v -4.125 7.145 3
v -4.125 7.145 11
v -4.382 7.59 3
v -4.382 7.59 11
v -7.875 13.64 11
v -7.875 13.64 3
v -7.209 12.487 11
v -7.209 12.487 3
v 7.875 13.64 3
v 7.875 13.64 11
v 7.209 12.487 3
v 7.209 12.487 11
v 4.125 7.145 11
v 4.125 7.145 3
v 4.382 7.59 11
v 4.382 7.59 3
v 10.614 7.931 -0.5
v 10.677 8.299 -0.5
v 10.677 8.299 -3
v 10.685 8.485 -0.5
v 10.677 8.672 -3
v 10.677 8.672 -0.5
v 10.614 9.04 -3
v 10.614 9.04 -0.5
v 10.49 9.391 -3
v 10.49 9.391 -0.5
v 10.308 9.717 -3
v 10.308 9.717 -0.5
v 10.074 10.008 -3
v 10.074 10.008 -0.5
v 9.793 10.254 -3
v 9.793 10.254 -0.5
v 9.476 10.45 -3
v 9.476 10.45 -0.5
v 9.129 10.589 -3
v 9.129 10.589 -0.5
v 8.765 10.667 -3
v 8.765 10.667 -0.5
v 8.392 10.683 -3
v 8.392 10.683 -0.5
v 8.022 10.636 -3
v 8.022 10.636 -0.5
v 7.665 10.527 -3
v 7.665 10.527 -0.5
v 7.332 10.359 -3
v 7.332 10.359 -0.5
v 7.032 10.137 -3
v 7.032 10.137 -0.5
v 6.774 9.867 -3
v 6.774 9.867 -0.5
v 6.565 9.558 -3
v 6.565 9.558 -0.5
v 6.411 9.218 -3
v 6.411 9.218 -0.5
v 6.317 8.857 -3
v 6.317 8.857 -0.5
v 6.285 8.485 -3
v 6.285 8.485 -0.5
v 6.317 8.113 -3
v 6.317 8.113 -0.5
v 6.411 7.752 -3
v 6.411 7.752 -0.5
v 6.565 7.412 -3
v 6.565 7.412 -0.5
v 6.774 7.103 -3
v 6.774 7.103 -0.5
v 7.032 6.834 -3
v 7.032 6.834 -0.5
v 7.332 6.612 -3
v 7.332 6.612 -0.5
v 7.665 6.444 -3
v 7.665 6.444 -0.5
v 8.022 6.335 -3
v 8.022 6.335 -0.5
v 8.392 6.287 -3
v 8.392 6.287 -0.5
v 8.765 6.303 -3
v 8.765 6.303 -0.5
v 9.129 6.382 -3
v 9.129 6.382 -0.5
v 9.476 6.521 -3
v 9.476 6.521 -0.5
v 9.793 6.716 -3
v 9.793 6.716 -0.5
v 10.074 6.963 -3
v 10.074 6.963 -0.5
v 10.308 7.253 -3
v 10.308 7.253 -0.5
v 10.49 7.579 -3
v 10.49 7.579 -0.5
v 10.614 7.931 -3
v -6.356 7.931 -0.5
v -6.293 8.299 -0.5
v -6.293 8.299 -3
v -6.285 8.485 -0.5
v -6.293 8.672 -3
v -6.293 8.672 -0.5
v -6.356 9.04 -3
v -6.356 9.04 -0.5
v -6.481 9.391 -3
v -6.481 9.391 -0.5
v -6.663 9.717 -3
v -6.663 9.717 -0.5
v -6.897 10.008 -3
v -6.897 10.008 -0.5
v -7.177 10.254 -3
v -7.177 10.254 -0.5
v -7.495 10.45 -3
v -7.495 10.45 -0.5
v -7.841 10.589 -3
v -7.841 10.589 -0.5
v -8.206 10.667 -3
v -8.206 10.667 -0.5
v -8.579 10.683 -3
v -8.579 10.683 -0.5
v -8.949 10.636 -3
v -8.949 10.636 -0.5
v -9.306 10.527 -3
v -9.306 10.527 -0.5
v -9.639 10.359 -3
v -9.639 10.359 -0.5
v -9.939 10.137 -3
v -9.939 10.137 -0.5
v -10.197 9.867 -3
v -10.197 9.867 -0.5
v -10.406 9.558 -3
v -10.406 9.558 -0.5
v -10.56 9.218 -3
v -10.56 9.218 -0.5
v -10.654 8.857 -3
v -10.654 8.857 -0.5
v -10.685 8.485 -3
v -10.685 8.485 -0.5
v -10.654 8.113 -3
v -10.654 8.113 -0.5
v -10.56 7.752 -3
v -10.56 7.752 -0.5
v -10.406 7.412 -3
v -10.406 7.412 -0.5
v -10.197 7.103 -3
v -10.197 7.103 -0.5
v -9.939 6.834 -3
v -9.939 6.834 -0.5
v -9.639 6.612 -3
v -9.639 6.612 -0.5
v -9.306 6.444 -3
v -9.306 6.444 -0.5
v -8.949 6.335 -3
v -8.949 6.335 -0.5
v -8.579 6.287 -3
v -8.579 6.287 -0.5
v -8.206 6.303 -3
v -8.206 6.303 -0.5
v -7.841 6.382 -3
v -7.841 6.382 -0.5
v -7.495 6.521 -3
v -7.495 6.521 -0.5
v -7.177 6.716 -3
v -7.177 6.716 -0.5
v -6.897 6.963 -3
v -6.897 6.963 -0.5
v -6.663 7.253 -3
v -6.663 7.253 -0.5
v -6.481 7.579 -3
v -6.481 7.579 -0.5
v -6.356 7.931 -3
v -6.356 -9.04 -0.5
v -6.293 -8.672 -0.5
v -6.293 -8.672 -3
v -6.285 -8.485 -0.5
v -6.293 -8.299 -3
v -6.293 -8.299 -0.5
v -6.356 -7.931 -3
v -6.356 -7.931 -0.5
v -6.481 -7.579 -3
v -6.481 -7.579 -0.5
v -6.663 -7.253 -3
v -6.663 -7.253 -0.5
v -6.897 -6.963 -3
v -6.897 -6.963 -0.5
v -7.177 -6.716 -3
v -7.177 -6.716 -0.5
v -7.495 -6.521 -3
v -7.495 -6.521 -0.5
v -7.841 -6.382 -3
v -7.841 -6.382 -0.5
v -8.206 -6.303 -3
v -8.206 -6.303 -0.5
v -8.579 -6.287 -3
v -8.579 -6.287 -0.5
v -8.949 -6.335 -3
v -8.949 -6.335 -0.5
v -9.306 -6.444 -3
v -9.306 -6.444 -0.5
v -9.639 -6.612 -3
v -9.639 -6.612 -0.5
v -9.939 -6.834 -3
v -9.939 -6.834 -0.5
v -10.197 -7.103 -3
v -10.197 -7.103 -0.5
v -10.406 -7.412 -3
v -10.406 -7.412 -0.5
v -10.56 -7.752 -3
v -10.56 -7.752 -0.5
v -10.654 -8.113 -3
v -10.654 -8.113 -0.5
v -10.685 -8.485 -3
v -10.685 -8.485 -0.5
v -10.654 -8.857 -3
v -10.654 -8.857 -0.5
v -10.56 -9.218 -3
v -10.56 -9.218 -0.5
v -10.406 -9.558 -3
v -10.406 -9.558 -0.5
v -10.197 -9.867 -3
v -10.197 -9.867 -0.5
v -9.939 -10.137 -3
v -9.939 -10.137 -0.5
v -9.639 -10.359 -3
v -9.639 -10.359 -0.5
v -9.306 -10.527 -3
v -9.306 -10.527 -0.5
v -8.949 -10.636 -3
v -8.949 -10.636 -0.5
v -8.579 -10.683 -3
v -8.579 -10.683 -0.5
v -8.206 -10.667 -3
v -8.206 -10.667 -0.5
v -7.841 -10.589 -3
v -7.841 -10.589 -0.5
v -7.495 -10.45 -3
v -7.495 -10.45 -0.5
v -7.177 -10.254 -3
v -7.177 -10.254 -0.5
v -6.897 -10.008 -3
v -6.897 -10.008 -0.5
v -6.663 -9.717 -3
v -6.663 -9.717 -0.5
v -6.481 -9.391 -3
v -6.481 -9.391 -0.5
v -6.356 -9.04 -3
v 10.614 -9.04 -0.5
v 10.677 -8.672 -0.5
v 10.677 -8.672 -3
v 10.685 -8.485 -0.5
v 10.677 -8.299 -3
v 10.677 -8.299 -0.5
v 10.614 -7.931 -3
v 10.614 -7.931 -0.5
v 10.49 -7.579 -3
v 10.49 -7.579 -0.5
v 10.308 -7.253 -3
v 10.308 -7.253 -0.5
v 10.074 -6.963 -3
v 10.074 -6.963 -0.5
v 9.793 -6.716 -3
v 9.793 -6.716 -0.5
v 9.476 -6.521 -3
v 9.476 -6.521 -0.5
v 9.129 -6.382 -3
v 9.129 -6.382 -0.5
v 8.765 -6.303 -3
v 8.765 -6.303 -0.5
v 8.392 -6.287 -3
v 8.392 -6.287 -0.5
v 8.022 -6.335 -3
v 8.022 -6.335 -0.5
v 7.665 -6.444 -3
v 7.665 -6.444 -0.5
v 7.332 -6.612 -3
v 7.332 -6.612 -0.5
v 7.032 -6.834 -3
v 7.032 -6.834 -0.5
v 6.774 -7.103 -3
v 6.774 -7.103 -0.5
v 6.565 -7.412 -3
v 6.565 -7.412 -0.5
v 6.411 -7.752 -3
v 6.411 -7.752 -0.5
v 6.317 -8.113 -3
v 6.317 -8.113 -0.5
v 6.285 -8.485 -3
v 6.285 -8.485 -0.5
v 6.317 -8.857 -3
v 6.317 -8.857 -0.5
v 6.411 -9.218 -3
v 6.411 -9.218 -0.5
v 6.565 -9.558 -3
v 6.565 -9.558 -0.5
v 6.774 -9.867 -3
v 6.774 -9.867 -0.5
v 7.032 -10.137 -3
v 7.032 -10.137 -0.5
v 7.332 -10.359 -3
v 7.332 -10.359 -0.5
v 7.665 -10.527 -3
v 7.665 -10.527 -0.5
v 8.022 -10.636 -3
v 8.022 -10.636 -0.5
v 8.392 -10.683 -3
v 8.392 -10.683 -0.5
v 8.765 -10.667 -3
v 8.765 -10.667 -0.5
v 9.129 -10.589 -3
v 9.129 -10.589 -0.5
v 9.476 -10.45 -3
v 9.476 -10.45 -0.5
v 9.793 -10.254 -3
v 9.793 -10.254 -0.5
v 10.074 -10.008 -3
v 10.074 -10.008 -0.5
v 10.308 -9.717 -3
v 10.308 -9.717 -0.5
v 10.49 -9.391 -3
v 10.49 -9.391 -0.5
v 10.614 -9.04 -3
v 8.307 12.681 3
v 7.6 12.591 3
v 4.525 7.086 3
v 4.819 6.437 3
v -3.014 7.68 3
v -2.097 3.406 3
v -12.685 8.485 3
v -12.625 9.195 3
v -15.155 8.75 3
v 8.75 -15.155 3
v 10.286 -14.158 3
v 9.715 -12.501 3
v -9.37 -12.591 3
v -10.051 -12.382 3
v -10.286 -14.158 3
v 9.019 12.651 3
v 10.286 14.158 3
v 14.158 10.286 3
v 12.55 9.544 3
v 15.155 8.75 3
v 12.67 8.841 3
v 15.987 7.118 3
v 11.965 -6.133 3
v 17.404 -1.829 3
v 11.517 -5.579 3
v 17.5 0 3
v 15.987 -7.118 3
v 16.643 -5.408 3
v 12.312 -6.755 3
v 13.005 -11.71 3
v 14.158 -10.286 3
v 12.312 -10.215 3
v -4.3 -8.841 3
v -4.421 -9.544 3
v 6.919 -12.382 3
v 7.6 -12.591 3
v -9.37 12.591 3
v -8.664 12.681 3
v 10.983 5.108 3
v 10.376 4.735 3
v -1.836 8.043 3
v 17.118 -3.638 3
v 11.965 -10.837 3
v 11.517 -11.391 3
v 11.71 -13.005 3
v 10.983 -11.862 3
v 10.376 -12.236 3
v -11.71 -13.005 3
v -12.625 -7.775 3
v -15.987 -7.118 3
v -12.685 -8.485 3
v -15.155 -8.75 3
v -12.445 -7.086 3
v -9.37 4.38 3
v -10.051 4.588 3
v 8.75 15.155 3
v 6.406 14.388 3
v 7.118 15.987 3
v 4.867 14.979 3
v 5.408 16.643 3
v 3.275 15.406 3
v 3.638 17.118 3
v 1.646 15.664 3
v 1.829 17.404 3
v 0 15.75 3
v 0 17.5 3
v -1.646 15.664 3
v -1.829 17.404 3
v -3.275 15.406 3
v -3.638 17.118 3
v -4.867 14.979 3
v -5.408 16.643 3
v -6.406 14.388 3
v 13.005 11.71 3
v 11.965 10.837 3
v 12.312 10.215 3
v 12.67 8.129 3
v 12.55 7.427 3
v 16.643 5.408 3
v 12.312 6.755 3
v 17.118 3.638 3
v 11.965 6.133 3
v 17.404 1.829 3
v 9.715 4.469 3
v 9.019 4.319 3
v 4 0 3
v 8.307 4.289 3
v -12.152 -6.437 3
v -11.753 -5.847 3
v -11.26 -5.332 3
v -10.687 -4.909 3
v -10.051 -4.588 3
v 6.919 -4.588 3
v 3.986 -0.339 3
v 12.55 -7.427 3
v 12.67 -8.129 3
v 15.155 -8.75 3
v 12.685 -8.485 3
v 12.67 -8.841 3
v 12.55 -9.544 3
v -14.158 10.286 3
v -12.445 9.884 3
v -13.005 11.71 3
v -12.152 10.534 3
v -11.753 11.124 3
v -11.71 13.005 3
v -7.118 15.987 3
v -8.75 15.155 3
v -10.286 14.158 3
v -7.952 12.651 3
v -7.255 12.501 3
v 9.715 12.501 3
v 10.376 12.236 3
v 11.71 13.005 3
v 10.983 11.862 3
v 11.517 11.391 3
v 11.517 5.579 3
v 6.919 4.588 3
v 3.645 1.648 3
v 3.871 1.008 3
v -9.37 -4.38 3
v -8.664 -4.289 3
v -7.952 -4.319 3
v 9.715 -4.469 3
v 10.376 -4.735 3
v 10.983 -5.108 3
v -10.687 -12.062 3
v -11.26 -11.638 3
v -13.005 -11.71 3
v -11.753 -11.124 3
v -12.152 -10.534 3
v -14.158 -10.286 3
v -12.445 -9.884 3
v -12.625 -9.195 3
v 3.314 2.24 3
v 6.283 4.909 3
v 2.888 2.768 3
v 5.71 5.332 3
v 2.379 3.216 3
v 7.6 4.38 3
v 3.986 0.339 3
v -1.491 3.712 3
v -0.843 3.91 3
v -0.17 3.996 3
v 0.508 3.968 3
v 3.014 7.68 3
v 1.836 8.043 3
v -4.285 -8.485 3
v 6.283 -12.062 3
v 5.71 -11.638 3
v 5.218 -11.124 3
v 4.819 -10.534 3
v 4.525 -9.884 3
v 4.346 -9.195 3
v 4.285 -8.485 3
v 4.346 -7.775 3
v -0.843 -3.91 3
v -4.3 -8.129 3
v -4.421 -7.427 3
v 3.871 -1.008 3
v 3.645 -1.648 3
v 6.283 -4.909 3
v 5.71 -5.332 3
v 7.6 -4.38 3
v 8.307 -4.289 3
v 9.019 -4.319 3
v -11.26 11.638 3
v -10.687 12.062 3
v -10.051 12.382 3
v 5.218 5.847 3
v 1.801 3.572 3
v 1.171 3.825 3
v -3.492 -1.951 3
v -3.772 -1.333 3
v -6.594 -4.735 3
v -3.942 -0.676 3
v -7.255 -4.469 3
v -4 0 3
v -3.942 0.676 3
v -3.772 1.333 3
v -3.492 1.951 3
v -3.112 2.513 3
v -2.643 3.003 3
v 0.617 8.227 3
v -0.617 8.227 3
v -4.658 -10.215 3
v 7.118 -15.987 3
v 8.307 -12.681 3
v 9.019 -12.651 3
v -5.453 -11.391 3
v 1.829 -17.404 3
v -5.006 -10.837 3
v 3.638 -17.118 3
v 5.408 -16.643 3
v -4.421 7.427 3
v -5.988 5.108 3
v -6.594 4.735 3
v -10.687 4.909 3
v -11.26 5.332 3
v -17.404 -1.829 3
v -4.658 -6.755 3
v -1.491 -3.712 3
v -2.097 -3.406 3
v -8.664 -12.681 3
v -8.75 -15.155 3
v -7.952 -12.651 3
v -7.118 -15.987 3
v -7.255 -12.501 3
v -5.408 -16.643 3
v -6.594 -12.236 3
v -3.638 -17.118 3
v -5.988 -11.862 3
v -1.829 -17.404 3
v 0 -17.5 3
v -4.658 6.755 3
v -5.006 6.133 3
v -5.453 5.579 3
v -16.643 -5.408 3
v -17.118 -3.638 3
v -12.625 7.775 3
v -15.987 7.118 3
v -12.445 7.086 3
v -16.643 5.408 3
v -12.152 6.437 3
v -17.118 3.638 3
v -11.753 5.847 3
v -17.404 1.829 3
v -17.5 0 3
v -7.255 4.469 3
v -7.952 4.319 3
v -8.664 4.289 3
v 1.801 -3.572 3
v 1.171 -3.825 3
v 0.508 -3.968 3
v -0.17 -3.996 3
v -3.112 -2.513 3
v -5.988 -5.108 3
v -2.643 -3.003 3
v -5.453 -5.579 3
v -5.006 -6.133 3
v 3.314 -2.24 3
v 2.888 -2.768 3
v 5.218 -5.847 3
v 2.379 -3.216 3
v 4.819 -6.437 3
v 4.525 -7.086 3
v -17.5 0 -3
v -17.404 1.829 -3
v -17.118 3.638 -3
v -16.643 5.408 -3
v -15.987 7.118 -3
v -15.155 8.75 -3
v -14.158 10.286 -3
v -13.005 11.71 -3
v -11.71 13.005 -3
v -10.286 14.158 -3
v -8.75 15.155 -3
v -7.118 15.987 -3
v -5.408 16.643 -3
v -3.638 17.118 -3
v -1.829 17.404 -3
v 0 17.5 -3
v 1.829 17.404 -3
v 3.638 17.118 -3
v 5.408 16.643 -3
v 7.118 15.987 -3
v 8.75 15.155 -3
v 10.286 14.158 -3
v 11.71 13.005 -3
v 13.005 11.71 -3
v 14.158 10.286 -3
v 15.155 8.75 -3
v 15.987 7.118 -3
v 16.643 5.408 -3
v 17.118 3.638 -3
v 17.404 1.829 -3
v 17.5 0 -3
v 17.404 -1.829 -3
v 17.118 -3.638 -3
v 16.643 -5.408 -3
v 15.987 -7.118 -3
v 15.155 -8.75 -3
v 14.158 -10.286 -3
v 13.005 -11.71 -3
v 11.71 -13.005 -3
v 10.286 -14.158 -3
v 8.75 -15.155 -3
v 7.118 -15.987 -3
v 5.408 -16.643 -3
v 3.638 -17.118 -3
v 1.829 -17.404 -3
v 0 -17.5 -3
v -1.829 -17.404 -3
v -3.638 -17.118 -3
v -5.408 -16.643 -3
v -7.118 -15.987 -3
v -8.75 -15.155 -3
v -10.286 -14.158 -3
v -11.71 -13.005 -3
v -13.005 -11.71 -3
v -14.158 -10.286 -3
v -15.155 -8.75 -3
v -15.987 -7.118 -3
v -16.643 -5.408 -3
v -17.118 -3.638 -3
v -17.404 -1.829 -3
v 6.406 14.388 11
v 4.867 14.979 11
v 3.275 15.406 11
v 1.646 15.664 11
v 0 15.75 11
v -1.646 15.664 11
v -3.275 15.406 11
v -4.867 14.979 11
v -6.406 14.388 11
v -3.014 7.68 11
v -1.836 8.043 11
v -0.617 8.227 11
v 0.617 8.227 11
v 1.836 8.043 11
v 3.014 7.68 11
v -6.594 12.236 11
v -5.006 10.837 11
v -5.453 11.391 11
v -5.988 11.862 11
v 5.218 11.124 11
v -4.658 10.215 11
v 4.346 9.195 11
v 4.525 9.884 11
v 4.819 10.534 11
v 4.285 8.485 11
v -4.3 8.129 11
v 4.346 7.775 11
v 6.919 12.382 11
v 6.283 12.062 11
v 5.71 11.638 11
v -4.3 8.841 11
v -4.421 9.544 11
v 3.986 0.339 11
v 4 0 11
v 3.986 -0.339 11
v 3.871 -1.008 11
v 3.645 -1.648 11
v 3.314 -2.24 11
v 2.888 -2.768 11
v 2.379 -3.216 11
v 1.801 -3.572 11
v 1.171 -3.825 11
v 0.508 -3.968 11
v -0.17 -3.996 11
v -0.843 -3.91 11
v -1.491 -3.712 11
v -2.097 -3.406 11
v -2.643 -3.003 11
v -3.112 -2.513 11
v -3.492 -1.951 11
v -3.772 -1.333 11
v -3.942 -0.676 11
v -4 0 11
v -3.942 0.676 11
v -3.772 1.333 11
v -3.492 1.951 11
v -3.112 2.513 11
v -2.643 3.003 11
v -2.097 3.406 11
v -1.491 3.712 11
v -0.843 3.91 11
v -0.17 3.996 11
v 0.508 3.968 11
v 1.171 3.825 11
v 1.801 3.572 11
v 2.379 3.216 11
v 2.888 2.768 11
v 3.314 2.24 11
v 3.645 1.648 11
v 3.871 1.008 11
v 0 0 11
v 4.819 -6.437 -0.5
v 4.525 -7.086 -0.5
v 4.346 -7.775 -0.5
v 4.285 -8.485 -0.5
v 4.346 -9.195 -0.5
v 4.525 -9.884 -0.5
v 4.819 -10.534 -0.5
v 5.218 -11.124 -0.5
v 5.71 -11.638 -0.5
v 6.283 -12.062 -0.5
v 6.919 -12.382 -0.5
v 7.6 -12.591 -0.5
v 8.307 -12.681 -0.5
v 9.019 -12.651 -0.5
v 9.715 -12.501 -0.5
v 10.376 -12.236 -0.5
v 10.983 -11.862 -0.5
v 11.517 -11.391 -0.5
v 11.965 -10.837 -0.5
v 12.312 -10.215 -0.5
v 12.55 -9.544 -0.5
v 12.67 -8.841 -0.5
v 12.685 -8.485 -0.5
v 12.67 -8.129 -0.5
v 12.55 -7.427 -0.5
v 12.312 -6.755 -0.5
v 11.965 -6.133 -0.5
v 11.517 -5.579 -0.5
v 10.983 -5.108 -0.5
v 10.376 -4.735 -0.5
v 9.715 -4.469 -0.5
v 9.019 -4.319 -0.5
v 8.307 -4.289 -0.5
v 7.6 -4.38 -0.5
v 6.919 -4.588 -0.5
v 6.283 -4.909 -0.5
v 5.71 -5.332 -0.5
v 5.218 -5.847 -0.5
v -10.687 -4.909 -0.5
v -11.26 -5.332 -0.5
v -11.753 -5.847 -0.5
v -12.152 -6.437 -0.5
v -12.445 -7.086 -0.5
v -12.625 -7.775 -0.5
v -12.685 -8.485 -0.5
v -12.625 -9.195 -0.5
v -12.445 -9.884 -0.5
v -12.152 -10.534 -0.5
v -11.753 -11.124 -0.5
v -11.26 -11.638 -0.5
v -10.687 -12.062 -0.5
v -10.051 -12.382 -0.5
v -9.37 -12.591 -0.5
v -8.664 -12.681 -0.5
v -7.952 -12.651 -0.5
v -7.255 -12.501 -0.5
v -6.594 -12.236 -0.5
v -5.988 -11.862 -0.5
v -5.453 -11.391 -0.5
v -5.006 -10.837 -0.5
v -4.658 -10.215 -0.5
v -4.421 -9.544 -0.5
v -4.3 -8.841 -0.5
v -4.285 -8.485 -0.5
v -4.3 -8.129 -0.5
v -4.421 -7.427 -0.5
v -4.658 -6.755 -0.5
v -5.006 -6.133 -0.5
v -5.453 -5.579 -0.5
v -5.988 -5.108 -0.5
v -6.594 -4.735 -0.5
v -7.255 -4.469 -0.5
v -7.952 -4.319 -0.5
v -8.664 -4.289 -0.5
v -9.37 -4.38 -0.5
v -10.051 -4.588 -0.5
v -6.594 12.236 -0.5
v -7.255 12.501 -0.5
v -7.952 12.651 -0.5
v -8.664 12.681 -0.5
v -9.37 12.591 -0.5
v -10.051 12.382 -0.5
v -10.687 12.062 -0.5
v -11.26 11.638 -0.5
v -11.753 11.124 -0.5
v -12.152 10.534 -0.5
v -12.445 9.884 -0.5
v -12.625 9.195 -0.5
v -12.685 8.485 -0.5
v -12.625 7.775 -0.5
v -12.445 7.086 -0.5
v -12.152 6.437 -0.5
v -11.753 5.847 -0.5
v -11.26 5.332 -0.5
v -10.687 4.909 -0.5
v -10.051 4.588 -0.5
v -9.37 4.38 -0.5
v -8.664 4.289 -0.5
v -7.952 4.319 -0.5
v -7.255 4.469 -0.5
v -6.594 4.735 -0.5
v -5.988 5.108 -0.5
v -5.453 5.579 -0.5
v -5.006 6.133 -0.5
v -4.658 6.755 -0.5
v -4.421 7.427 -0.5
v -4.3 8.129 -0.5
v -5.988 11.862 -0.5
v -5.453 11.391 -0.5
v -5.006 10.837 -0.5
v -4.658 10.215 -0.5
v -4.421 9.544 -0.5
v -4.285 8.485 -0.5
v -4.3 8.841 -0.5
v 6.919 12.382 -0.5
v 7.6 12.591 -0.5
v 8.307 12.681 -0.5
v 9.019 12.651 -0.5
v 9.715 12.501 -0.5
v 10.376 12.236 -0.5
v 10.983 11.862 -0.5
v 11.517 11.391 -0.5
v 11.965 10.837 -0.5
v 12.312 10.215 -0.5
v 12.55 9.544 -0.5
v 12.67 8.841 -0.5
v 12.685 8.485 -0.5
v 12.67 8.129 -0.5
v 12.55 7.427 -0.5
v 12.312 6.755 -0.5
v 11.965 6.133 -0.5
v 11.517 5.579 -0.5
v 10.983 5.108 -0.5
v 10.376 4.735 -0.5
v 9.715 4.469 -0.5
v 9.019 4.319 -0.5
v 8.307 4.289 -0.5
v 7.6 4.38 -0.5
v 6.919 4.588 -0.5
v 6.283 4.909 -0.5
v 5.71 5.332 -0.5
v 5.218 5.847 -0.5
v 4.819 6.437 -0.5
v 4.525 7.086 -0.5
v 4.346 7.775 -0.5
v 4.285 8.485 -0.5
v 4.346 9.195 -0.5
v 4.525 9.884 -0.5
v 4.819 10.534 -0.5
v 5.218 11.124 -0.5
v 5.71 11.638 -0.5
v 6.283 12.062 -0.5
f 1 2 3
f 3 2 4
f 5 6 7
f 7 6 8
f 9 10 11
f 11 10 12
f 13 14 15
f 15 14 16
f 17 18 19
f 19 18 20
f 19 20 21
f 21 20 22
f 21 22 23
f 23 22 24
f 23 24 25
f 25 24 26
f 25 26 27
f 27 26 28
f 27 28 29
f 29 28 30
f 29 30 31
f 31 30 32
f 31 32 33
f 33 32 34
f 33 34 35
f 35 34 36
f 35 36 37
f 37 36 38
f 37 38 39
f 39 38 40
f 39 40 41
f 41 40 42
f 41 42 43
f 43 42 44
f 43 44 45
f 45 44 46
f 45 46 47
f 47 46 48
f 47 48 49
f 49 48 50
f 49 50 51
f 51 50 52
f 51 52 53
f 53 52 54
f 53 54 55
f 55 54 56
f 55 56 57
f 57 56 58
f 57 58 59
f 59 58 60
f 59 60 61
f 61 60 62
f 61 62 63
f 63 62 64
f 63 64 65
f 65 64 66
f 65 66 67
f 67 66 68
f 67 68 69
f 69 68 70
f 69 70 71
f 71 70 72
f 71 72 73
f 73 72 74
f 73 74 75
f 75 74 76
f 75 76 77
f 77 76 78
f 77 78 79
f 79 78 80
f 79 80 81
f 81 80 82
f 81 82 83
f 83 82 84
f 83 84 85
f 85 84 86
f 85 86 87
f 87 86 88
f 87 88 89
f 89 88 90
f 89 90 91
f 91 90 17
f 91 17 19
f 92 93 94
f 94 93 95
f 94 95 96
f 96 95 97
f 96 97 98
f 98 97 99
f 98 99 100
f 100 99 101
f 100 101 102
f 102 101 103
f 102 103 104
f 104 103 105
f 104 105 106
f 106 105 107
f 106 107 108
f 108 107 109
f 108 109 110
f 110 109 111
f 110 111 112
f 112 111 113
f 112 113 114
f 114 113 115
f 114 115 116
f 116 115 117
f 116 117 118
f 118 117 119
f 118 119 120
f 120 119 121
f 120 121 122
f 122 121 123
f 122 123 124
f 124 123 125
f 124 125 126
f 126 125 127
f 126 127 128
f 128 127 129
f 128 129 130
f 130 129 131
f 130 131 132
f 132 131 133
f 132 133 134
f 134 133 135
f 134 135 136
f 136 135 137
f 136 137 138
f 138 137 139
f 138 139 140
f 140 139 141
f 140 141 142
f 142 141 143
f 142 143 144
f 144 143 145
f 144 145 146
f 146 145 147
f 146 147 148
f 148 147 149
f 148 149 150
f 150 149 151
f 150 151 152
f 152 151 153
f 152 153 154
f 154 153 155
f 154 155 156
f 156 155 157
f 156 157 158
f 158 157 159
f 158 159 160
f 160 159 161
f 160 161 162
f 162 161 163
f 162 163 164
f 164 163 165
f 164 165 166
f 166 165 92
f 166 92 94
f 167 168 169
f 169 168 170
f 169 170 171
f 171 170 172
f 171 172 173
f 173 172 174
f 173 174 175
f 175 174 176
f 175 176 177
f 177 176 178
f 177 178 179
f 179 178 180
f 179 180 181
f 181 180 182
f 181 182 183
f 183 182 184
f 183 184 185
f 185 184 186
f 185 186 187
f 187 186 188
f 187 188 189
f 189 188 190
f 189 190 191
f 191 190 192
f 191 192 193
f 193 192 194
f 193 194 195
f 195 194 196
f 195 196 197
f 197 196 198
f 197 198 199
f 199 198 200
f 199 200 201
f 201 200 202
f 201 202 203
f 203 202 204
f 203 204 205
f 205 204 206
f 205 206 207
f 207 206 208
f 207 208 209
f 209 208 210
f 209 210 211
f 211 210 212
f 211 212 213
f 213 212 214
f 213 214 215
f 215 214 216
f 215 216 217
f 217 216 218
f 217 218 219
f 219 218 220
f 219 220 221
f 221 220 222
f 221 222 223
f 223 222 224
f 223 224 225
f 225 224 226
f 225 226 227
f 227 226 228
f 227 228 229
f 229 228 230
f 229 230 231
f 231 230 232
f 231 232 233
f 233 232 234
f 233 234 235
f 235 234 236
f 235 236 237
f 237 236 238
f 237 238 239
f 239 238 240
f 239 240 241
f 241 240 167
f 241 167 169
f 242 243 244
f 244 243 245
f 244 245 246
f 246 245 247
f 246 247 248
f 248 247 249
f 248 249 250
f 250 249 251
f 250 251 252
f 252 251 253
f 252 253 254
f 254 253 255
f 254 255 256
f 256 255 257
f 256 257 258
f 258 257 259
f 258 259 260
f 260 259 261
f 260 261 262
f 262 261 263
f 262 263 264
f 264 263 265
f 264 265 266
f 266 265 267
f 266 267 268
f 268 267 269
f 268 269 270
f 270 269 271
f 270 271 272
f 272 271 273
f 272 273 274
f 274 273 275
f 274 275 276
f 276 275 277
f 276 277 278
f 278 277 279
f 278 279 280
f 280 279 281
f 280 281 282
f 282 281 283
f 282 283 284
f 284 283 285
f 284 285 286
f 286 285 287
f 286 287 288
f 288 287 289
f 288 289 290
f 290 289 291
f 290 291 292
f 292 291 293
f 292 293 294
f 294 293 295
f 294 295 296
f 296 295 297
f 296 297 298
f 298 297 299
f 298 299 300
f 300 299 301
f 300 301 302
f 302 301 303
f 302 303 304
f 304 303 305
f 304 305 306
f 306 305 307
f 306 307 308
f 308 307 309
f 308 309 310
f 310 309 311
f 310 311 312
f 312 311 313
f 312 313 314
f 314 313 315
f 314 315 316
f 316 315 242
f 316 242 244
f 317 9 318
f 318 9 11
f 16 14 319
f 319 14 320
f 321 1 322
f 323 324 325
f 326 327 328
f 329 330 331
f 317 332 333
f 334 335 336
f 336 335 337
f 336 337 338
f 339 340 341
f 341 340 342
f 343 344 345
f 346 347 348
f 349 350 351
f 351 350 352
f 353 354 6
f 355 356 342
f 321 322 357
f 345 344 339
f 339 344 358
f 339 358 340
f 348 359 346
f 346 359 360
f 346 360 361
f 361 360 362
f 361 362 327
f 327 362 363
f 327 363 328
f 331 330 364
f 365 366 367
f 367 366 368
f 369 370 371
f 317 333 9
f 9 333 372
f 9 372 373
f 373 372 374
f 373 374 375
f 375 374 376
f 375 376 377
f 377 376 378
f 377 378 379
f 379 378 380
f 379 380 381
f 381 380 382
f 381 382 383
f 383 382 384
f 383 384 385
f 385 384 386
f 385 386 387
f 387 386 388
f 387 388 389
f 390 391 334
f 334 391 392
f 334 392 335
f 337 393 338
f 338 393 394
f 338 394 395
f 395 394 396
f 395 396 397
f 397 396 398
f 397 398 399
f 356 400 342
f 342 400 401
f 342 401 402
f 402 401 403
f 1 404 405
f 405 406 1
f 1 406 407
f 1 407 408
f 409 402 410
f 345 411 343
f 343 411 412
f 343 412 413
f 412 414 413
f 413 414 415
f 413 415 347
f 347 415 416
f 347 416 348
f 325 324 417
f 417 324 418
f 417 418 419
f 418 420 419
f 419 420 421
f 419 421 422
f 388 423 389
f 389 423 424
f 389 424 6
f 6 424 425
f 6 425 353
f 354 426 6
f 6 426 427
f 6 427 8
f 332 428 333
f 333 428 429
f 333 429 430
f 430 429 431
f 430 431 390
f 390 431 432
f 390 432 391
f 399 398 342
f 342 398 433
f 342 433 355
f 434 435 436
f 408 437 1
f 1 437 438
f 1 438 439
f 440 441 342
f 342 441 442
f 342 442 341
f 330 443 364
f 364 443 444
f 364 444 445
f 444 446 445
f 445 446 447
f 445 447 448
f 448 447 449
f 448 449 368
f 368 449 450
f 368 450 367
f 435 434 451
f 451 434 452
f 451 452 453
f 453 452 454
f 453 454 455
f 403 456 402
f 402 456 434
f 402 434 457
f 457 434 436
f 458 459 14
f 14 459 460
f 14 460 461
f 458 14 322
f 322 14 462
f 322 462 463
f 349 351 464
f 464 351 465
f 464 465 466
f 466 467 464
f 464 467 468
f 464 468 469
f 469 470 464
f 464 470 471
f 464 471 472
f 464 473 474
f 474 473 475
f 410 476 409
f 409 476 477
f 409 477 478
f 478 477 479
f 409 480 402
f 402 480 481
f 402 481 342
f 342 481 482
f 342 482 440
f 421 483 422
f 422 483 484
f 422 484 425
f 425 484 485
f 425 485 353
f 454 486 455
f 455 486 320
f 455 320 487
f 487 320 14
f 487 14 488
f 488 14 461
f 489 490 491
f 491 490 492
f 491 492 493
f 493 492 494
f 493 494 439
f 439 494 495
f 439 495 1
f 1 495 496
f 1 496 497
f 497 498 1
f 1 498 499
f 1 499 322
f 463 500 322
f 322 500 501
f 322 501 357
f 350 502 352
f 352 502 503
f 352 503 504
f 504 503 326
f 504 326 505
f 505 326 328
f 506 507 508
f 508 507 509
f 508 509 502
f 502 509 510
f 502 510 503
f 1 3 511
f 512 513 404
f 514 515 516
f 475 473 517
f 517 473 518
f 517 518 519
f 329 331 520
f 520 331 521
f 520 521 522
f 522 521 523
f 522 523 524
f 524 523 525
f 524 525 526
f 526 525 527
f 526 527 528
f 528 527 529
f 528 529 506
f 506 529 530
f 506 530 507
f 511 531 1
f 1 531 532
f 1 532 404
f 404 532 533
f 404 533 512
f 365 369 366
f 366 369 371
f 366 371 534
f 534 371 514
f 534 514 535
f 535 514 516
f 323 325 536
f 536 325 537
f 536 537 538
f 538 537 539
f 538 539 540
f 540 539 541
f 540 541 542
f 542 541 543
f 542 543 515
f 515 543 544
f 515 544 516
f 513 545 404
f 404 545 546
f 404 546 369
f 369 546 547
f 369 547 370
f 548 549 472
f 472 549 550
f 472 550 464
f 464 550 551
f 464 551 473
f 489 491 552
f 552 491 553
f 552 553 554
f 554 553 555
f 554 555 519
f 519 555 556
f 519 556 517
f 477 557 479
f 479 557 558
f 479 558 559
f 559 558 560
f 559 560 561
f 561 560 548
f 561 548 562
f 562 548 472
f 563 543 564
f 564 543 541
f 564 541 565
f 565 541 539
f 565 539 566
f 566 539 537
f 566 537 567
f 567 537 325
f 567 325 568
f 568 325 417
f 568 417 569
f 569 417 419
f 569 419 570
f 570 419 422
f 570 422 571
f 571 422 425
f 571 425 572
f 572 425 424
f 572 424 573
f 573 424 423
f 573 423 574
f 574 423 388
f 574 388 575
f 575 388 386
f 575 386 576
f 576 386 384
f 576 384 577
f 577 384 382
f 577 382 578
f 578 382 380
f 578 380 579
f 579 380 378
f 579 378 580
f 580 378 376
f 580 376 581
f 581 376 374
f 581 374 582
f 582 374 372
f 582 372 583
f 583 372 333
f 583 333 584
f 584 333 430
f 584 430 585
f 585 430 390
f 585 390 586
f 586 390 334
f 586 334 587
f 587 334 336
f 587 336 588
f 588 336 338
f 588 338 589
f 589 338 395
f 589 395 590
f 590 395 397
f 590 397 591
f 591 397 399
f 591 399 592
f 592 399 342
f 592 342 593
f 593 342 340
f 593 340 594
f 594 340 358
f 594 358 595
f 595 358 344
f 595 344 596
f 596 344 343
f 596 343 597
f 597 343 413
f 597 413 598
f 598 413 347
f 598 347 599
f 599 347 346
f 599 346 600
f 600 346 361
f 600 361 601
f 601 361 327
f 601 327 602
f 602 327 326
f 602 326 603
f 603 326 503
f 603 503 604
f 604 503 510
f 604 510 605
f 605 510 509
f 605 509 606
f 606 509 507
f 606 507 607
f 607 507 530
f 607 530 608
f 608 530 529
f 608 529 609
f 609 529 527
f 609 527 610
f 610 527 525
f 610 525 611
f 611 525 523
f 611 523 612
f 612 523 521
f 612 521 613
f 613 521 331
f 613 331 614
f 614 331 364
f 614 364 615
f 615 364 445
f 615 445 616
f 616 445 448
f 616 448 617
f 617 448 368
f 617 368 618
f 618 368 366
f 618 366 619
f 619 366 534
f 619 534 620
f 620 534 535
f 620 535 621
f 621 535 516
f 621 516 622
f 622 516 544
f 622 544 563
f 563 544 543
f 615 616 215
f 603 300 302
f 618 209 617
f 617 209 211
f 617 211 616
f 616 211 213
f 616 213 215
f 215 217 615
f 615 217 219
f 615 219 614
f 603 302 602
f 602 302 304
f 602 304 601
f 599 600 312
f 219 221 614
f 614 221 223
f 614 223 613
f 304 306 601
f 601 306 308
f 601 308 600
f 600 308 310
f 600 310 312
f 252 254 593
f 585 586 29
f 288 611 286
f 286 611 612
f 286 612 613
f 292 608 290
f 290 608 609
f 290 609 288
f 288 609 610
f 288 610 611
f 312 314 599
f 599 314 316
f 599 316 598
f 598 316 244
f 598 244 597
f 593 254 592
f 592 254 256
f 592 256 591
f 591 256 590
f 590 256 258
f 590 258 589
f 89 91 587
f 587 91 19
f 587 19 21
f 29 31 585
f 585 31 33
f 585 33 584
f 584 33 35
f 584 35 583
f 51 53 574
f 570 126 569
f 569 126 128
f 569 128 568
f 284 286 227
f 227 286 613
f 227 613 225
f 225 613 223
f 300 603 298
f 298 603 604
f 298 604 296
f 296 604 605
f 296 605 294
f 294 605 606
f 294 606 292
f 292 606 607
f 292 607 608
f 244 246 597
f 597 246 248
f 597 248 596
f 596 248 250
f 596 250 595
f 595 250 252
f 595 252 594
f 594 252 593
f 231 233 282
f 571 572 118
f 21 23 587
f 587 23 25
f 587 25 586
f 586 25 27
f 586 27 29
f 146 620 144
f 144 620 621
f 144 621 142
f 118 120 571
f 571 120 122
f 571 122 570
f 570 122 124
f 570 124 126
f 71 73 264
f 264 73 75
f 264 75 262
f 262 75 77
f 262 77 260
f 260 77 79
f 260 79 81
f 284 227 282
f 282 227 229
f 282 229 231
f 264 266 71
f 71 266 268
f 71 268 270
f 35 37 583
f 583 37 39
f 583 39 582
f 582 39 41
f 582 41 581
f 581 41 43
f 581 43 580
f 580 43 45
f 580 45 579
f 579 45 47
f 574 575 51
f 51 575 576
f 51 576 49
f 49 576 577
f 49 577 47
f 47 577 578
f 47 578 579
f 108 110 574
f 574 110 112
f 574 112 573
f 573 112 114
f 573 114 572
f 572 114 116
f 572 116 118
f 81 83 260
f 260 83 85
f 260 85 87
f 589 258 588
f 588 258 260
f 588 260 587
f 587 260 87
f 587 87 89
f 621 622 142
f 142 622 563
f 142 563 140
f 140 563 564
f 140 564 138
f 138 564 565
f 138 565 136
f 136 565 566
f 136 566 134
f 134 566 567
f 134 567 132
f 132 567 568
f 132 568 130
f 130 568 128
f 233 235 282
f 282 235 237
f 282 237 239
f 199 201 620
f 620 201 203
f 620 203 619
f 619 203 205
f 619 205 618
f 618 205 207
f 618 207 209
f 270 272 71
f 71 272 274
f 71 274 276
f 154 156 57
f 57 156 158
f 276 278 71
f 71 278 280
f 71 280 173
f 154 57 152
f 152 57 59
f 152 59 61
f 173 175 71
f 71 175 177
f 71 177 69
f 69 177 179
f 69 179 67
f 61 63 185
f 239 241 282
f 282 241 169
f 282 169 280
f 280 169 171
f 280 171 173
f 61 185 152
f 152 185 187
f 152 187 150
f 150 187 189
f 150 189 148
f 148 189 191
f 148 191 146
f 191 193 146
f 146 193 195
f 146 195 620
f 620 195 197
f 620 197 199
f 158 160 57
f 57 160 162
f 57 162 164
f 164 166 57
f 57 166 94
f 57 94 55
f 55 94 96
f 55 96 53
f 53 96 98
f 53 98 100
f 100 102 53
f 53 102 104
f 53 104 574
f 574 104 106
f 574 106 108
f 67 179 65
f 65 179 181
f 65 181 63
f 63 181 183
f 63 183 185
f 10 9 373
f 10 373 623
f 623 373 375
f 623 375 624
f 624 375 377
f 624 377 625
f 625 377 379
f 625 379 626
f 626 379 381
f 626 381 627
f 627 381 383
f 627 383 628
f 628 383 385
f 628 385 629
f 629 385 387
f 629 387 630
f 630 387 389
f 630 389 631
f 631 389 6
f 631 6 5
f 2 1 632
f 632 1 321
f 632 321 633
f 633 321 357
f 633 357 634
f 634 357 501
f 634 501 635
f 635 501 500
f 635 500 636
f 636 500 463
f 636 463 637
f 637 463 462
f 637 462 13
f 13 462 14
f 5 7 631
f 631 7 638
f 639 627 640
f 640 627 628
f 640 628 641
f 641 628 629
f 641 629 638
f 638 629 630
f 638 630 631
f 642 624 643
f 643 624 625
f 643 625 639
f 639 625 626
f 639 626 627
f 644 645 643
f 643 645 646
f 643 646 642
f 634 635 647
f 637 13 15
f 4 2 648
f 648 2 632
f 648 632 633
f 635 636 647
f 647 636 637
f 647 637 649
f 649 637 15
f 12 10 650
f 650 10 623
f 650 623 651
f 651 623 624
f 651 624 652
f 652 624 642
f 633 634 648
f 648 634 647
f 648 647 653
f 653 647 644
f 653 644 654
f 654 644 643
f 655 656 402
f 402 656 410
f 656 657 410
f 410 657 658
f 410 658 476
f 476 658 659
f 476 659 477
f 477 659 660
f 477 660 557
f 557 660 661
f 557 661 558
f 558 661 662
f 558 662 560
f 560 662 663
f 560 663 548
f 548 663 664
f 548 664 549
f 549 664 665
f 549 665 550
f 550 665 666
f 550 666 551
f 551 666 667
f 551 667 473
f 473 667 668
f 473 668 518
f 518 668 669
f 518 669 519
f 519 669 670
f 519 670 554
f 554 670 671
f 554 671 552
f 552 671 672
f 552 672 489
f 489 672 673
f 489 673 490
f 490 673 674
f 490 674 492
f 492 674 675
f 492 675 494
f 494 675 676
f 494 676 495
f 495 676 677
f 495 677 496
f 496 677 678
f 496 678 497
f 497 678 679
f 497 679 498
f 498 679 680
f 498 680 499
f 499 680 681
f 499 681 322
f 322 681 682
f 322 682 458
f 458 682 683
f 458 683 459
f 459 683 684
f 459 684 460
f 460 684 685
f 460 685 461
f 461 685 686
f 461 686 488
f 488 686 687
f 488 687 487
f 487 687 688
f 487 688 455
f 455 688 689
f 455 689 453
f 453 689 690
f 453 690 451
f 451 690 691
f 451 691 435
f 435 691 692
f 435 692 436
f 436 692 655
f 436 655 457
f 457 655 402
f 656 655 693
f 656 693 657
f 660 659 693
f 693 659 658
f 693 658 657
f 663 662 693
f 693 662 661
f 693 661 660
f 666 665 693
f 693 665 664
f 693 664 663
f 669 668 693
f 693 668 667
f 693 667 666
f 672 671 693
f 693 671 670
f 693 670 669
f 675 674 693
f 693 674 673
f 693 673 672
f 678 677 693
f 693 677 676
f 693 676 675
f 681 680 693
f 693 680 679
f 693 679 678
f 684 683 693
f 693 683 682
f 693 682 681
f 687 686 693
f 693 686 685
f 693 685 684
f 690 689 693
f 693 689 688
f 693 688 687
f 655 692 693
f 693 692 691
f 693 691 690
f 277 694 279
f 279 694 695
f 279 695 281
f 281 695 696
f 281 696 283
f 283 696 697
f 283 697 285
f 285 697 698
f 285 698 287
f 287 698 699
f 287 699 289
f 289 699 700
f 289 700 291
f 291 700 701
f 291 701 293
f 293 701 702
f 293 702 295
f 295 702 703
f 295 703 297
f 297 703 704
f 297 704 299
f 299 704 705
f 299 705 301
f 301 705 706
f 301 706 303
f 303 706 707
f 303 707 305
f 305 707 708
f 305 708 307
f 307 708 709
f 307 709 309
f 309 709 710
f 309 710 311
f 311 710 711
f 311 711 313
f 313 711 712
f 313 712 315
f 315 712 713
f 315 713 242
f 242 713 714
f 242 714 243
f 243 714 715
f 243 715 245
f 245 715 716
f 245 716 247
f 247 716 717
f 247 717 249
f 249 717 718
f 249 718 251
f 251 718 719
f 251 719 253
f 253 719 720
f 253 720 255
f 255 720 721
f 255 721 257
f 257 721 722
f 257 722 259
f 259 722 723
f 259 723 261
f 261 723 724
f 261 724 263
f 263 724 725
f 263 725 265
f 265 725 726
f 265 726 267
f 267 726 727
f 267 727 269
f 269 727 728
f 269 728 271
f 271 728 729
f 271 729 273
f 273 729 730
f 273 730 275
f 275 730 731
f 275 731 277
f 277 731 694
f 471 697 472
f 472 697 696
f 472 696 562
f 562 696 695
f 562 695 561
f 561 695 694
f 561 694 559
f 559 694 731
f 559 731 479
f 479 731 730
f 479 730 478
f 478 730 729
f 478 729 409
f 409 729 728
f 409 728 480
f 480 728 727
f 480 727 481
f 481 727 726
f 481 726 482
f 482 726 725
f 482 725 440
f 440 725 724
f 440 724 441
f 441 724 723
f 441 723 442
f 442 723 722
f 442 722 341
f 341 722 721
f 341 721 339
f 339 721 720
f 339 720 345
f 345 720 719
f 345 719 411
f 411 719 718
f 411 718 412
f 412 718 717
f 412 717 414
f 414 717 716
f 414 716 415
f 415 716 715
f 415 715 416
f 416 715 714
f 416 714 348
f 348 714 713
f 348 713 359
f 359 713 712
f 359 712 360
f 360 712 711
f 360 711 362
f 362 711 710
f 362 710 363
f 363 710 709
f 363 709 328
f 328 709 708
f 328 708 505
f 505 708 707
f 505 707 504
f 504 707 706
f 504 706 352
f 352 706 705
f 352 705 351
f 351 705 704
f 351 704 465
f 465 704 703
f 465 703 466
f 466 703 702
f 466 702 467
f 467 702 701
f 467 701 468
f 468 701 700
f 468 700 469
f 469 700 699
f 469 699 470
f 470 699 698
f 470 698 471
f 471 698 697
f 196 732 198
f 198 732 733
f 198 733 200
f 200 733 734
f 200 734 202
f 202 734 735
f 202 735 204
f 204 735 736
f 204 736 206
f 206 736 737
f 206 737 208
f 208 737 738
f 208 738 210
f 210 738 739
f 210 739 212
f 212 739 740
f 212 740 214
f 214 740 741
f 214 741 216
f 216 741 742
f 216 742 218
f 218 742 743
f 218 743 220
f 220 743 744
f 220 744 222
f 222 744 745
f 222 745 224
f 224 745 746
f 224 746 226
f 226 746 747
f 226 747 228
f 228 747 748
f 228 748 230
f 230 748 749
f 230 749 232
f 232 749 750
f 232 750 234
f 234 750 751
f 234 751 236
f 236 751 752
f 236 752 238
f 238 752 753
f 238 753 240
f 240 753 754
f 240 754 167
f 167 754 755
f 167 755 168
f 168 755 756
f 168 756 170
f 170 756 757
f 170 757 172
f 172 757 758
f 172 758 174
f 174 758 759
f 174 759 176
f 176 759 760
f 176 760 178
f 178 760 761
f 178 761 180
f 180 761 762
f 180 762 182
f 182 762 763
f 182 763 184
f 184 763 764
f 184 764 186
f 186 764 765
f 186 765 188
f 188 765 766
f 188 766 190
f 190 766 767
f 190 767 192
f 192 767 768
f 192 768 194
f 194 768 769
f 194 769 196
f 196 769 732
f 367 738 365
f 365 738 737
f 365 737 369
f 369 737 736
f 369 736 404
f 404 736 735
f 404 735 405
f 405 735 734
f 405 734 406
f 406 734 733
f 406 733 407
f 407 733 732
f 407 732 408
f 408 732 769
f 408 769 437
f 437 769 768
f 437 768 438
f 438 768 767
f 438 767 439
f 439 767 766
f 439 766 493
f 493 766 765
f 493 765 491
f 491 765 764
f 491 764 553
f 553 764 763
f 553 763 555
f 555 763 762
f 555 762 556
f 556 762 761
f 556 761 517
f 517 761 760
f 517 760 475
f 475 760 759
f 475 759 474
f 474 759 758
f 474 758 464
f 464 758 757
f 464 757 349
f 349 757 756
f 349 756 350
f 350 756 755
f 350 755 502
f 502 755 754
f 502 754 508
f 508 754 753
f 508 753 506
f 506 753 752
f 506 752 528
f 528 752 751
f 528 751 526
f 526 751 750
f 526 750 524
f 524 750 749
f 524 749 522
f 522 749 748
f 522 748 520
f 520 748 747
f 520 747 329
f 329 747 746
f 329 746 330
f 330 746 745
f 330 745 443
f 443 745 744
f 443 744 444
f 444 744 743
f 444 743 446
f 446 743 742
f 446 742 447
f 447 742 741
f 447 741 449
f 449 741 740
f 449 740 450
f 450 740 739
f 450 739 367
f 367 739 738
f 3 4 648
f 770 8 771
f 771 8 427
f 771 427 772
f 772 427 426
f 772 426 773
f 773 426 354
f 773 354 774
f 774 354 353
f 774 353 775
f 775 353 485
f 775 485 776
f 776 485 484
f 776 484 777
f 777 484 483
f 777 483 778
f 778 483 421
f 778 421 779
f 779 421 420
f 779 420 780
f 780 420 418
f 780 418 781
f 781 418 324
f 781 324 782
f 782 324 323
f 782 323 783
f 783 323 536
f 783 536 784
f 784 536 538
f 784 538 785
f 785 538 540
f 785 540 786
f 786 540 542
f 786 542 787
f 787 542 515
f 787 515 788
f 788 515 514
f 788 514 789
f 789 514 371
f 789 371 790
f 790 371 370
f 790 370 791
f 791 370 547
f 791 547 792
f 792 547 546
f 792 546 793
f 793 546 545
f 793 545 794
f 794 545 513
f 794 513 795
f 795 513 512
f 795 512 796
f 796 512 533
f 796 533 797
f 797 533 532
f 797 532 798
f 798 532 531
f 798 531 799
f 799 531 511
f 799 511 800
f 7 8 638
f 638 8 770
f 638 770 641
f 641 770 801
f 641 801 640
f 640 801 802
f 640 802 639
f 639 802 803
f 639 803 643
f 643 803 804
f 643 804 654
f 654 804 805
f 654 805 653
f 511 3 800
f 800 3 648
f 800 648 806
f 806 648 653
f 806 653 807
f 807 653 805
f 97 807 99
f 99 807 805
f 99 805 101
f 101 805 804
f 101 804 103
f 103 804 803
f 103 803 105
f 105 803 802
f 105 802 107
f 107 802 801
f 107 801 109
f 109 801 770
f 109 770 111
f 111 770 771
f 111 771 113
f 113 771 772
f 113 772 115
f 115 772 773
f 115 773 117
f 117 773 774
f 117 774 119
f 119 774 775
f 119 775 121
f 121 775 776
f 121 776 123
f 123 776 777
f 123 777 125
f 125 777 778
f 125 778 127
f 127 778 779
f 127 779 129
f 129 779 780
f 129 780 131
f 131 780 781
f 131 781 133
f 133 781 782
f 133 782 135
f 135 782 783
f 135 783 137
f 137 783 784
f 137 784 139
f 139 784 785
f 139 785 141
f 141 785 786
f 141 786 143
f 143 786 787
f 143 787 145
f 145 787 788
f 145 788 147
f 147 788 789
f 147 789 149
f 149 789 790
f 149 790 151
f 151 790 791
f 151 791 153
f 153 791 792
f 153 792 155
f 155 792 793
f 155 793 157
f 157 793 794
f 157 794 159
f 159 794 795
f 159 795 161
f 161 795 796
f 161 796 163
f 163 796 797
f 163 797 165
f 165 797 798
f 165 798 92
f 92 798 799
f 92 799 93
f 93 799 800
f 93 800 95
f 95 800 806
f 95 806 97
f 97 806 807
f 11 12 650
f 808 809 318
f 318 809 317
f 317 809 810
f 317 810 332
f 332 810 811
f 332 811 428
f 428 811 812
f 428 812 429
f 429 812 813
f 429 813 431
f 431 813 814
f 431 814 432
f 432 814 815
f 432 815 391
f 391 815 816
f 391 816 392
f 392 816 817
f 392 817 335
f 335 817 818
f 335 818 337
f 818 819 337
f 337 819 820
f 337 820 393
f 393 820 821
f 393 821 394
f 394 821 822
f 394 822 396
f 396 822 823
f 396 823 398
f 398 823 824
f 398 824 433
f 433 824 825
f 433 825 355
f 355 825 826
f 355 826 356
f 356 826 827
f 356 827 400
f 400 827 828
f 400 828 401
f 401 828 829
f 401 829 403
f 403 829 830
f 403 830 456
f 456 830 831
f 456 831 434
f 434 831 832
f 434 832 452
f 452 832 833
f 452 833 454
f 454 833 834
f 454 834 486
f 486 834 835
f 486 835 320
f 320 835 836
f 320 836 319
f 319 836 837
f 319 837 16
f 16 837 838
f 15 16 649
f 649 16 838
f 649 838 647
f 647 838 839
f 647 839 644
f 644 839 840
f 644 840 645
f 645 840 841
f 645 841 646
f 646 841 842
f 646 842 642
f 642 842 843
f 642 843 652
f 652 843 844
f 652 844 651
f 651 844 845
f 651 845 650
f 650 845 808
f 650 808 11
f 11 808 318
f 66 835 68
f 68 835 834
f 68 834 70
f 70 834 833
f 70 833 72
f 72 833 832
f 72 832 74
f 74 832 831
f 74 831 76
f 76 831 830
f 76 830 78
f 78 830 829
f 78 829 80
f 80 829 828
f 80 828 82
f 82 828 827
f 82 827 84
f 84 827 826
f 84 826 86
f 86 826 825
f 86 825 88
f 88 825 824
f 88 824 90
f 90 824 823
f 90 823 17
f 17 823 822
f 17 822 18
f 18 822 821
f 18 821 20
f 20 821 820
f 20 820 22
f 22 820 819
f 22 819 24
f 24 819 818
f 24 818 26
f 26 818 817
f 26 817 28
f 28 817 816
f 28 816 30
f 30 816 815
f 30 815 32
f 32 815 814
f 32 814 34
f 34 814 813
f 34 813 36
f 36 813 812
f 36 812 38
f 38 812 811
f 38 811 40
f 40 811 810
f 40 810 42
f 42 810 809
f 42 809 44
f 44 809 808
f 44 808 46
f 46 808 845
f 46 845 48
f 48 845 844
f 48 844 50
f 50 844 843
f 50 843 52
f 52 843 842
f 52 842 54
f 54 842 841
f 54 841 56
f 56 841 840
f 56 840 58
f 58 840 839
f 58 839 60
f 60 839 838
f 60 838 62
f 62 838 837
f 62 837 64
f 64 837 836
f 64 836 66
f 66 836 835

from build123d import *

# Parameters (mm, degrees)
SKETCH1_R                      = 17.5
BOSS_EXTRUDE1_DEPTH            = 3
BOSS_EXTRUDE2_DEPTH            = 8
SKETCH3_R                      = 4
BOSS_EXTRUDE3_DEPTH            = 8
SKETCH4_R                      = 2.2
CUT_EXTRUDE1_DEPTH             = 6
SKETCH5_R                      = 4.2
CUT_EXTRUDE2_DEPTH             = 3.5
CUT_EXTRUDE2_DIRECTION_2_REACH = 28.01


with BuildPart() as part:
    # Sketch1 → Boss-Extrude1 (new, symmetric)
    with BuildSketch(Plane.XY):
        Circle(SKETCH1_R)
    extrude(amount=BOSS_EXTRUDE1_DEPTH, both=True)

    # Sketch2 → Boss-Extrude2 (add)
    with BuildSketch(Plane.XY.offset(3)):
        with BuildLine():
            Line((7.875, 13.63990011), (4.125, 7.144709581))
            ThreePointArc((4.125, 7.144709581), (0, 8.25), (-4.125, 7.144709581))
            Line((-4.125, 7.144709581), (-7.875, 13.63990011))
            ThreePointArc((-7.875, 13.63990011), (0, 15.75), (7.875, 13.63990011))
        make_face()
    extrude(amount=BOSS_EXTRUDE2_DEPTH)

    # Sketch3 → Boss-Extrude3 (add)
    with BuildSketch(Plane.XY.offset(3)):
        Circle(SKETCH3_R)
    extrude(amount=BOSS_EXTRUDE3_DEPTH)

    # Sketch4 → Cut-Extrude1 (cut)
    with BuildSketch(Plane(origin=(0, 0, -3), x_dir=(-1, 0, 0), z_dir=(0, 0, -1))):
        with Locations((-8.485281374, 8.485281374)):
            Circle(SKETCH4_R)
        with Locations((8.485281374, 8.485281374)):
            Circle(SKETCH4_R)
        with Locations((8.485281374, -8.485281374)):
            Circle(SKETCH4_R)
        with Locations((-8.485281374, -8.485281374)):
            Circle(SKETCH4_R)
    extrude(amount=-CUT_EXTRUDE1_DEPTH, mode=Mode.SUBTRACT)

    # Sketch5 → Cut-Extrude2 (cut)
    with BuildSketch(Plane.XY.offset(3)):
        with Locations((-8.485281374, -8.485281374)):
            Circle(SKETCH5_R)
        with Locations(Location((-8.485281374, 8.485281374, 0), (0, 0, 72.312607482))):
            Circle(SKETCH5_R)
        with Locations(Location((8.485281374, 8.485281374, 0), (0, 0, 192.312607482))):
            Circle(SKETCH5_R)
        with Locations((8.485281374, -8.485281374)):
            Circle(SKETCH5_R)
    extrude(amount=-CUT_EXTRUDE2_DEPTH, mode=Mode.SUBTRACT)

    # Cut-Extrude2 direction 2: up to this face of the body (flat: up to its plane)
    cut_extrude2_direction_2_end = Plane(part.part.faces().sort_by_distance((0, 11.8321753, 11))[0])
    # Sketch5 → Cut-Extrude2 direction 2 (cut, up to the picked face)
    with BuildSketch(Plane.XY.offset(3), mode=Mode.PRIVATE) as cut_extrude2_direction_2_sk1:
        with Locations((-8.485281374, -8.485281374)):
            Circle(SKETCH5_R)
    cut_extrude2_direction_2_tool1 = split(extrude(cut_extrude2_direction_2_sk1.sketch, amount=CUT_EXTRUDE2_DIRECTION_2_REACH, mode=Mode.PRIVATE), bisect_by=cut_extrude2_direction_2_end, keep=Keep.BOTH, mode=Mode.PRIVATE)
    # Sketch5 → Cut-Extrude2 direction 2 (cut, up to the picked face)
    with BuildSketch(Plane.XY.offset(3), mode=Mode.PRIVATE) as cut_extrude2_direction_2_sk2:
        with Locations(Location((-8.485281374, 8.485281374, 0), (0, 0, 72.312607482))):
            Circle(SKETCH5_R)
    cut_extrude2_direction_2_tool2 = split(extrude(cut_extrude2_direction_2_sk2.sketch, amount=CUT_EXTRUDE2_DIRECTION_2_REACH, mode=Mode.PRIVATE), bisect_by=cut_extrude2_direction_2_end, keep=Keep.BOTH, mode=Mode.PRIVATE)
    # Sketch5 → Cut-Extrude2 direction 2 (cut, up to the picked face)
    with BuildSketch(Plane.XY.offset(3), mode=Mode.PRIVATE) as cut_extrude2_direction_2_sk3:
        with Locations(Location((8.485281374, 8.485281374, 0), (0, 0, 192.312607482))):
            Circle(SKETCH5_R)
    cut_extrude2_direction_2_tool3 = split(extrude(cut_extrude2_direction_2_sk3.sketch, amount=CUT_EXTRUDE2_DIRECTION_2_REACH, mode=Mode.PRIVATE), bisect_by=cut_extrude2_direction_2_end, keep=Keep.BOTH, mode=Mode.PRIVATE)
    # Sketch5 → Cut-Extrude2 direction 2 (cut, up to the picked face)
    with BuildSketch(Plane.XY.offset(3), mode=Mode.PRIVATE) as cut_extrude2_direction_2_sk4:
        with Locations((8.485281374, -8.485281374)):
            Circle(SKETCH5_R)
    cut_extrude2_direction_2_tool4 = split(extrude(cut_extrude2_direction_2_sk4.sketch, amount=CUT_EXTRUDE2_DIRECTION_2_REACH, mode=Mode.PRIVATE), bisect_by=cut_extrude2_direction_2_end, keep=Keep.BOTH, mode=Mode.PRIVATE)
    add(cut_extrude2_direction_2_tool1.solids().sort_by(Axis((-8.485281, -8.485281, 3), (0, 0, 1)))[0], mode=Mode.SUBTRACT)
    add(cut_extrude2_direction_2_tool2.solids().sort_by(Axis((-8.485281, 8.485281, 3), (0, 0, 1)))[0], mode=Mode.SUBTRACT)
    add(cut_extrude2_direction_2_tool3.solids().sort_by(Axis((8.485281, 8.485281, 3), (0, 0, 1)))[0], mode=Mode.SUBTRACT)
    add(cut_extrude2_direction_2_tool4.solids().sort_by(Axis((8.485281, -8.485281, 3), (0, 0, 1)))[0], mode=Mode.SUBTRACT)


solid = part.part
